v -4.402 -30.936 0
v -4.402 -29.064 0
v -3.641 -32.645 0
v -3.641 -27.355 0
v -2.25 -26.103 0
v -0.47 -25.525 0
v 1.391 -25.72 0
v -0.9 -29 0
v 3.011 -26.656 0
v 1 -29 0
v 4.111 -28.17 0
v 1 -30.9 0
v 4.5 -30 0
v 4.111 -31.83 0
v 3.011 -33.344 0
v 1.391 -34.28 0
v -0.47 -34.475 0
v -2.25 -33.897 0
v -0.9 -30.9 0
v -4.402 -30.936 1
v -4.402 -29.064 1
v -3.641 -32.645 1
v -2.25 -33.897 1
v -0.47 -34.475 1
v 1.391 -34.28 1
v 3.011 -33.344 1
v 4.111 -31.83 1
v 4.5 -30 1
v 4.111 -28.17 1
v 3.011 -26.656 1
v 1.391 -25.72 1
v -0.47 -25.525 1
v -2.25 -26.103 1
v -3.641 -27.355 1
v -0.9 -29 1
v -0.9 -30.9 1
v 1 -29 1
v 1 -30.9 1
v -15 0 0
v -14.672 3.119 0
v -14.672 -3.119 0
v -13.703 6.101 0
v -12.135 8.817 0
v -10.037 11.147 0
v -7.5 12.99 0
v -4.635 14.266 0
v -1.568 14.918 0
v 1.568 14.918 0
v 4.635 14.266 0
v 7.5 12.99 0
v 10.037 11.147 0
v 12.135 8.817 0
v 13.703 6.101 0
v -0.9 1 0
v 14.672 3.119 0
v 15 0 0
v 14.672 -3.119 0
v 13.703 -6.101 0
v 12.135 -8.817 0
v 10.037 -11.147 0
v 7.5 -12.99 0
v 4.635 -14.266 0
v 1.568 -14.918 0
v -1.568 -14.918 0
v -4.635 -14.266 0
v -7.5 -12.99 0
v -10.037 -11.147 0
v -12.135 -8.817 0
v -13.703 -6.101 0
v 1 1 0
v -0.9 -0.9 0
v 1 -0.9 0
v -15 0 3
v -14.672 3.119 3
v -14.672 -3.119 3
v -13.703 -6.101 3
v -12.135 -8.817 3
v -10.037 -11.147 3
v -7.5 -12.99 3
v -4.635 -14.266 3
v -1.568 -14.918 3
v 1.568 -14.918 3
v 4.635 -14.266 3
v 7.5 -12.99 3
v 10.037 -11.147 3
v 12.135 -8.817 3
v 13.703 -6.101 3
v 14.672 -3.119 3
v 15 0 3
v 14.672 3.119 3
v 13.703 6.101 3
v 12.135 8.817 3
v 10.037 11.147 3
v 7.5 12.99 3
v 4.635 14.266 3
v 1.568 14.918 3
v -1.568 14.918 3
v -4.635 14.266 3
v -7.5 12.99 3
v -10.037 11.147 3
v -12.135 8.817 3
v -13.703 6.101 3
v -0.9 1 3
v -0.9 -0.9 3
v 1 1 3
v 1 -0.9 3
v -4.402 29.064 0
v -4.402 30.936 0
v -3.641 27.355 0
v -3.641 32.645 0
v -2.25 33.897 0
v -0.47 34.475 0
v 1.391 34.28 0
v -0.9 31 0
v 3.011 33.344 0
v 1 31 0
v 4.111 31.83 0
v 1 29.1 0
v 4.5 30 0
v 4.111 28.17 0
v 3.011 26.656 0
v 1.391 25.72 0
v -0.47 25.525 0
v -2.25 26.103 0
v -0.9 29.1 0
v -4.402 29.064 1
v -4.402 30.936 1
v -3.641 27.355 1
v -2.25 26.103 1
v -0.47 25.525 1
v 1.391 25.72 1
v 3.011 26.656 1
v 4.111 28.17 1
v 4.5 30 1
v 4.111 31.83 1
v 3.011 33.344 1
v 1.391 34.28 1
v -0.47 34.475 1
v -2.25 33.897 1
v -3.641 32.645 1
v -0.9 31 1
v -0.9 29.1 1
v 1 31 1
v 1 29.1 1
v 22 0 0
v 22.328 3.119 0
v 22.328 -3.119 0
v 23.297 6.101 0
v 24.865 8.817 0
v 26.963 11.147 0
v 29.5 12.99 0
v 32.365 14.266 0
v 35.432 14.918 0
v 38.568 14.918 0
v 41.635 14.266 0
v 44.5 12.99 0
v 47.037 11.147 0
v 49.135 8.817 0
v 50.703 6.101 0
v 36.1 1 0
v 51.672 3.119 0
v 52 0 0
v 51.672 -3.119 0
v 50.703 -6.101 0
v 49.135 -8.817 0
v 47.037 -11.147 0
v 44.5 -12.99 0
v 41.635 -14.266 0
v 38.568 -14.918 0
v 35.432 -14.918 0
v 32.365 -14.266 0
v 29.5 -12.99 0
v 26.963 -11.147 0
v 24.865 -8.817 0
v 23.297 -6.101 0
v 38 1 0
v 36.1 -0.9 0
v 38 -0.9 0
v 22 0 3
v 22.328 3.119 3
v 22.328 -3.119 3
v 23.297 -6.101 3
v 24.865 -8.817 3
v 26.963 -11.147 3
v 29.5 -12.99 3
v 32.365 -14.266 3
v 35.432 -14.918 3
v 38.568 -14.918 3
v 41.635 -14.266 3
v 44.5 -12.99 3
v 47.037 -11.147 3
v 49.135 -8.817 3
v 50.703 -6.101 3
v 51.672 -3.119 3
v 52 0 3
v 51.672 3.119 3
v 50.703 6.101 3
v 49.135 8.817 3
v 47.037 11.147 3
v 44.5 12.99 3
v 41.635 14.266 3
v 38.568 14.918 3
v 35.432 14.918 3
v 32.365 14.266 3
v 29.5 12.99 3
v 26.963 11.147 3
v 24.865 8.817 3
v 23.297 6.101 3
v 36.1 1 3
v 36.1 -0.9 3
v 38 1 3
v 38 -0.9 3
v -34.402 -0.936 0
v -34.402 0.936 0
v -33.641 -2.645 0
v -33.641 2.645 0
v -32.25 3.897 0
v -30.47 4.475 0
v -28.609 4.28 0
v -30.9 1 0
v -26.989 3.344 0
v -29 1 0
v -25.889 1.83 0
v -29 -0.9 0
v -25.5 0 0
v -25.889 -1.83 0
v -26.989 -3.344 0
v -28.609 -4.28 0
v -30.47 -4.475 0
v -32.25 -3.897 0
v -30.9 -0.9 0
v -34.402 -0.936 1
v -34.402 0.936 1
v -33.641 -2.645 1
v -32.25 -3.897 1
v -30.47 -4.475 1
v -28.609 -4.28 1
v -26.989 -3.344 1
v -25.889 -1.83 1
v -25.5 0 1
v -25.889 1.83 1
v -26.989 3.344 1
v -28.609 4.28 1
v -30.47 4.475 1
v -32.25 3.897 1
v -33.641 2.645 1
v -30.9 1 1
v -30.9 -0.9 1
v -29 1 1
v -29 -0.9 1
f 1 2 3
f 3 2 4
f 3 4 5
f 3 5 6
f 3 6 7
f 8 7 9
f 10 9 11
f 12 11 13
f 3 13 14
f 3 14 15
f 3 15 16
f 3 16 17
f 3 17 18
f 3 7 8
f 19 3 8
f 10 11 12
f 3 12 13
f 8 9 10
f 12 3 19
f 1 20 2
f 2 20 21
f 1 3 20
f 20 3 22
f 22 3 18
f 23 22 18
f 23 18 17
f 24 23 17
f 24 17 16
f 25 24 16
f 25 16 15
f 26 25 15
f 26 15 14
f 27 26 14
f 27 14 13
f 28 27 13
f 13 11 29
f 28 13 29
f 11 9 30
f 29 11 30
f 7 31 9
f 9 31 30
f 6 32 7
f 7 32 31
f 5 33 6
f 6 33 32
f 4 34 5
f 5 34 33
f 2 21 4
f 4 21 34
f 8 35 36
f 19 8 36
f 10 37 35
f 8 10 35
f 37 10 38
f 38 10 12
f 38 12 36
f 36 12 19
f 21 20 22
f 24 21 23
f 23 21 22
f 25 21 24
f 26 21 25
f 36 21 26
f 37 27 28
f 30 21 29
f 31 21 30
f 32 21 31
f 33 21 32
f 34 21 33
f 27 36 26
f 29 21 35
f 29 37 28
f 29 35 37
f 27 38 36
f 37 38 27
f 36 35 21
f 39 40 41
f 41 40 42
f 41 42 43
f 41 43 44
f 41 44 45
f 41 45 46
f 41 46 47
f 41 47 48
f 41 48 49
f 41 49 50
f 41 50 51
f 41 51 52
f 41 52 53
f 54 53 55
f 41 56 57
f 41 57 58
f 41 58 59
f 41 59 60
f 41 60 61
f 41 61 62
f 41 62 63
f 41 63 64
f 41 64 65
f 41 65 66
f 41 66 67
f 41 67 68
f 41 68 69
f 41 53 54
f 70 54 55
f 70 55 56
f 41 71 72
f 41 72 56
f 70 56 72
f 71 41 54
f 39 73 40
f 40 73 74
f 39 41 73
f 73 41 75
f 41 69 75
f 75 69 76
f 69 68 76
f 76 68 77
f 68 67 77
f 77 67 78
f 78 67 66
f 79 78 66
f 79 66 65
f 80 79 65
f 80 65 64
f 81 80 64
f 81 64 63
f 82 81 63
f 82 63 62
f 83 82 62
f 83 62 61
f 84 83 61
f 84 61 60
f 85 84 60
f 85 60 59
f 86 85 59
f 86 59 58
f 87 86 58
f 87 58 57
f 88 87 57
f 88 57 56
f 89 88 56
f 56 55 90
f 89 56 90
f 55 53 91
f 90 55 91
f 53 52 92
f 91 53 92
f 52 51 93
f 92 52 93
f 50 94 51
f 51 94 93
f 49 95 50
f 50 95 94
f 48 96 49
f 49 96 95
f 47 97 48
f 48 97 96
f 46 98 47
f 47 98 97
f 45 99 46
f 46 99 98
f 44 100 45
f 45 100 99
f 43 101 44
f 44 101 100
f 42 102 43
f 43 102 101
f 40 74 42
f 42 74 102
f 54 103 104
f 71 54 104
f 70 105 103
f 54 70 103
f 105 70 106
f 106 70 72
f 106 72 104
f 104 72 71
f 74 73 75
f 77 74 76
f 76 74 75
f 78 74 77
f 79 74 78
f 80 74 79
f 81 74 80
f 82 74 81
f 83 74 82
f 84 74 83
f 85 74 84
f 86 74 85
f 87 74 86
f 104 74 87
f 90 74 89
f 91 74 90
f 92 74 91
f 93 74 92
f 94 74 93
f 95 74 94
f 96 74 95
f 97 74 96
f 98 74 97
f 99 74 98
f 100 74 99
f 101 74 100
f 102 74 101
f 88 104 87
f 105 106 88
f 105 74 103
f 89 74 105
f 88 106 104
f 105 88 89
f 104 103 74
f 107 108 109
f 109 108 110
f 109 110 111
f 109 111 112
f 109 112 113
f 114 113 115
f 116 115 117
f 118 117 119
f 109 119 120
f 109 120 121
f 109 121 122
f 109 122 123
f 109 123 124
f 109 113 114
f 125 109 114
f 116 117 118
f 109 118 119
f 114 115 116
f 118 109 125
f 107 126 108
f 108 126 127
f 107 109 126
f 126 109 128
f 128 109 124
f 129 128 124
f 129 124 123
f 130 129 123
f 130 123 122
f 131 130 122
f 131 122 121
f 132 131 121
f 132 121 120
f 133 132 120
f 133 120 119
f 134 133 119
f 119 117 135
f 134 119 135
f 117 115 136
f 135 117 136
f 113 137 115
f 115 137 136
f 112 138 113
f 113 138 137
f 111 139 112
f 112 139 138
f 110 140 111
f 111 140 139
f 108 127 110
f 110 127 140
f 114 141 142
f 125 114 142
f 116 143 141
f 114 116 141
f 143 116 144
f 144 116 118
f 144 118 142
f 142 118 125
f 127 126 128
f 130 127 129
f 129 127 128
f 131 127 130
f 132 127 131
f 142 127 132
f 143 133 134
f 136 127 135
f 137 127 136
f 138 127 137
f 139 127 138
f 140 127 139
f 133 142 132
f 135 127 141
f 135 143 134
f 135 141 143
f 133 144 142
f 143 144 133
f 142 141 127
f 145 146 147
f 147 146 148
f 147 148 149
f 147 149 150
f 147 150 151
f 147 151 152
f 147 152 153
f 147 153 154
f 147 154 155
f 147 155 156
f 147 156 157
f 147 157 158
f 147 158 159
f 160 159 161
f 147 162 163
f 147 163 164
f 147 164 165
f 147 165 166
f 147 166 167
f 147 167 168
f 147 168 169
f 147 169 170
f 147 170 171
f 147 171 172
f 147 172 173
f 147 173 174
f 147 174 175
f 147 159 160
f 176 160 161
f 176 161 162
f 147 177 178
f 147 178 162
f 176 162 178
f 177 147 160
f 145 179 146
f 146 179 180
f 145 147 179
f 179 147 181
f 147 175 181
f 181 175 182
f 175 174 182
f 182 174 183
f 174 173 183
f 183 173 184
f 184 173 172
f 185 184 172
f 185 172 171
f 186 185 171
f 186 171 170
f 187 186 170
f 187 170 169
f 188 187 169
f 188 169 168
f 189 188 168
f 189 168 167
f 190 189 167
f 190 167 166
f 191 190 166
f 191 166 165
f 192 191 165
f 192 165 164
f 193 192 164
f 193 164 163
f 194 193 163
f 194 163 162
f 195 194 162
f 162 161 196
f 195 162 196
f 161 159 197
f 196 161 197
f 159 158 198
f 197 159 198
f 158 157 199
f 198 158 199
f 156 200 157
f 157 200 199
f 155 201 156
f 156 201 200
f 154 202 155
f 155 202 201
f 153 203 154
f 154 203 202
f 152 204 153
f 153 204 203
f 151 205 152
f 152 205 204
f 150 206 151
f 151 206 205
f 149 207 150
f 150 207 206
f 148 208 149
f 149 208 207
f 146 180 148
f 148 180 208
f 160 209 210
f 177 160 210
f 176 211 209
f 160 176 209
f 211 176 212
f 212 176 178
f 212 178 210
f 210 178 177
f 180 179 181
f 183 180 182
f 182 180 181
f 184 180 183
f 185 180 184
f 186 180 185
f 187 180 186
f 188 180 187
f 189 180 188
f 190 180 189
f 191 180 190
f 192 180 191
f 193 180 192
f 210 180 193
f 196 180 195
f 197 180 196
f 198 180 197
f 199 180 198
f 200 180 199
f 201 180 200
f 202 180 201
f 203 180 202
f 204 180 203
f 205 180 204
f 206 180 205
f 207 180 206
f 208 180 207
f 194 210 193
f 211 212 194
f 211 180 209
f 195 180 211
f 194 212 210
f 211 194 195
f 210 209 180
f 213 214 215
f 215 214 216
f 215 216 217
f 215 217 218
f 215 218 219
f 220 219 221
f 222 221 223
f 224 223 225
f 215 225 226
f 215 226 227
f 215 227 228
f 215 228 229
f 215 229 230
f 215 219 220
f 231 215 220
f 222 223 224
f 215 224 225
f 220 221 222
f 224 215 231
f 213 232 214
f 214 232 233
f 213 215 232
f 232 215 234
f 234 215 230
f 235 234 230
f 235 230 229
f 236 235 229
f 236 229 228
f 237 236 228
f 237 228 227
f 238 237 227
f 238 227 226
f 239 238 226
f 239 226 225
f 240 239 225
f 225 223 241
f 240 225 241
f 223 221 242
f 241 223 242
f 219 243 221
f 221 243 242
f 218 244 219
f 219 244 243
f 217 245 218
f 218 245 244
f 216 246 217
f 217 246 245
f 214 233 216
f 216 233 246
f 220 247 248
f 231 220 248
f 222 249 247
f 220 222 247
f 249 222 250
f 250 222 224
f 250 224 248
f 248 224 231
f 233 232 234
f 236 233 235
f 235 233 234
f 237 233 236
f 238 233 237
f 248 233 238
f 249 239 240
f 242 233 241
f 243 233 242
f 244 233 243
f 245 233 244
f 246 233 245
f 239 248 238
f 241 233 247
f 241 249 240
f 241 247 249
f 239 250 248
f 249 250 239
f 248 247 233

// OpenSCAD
translate([0,-30,0])
union(){
difference(){
cylinder(1,4.5,4.5);
 translate([-0.9,-0.9,-1])cube([1.9,1.9,5]);
}
}

union(){
difference(){
 cylinder(3,15,15);
 translate([-0.9,-0.9,-1])cube([1.9,1.9,5]);
}
}

translate([0,30,0])
union(){
difference(){
cylinder(1,4.5,4.5);
 translate([-0.9,-0.9,-1])cube([1.9,1.9,5]);
}
}

translate([37,0,0])
union(){
difference(){
 cylinder(3,15,15);
 translate([-0.9,-0.9,-1])cube([1.9,1.9,5]);
}
}

translate([-30,0,0])
union(){
difference(){
cylinder(1,4.5,4.5);
 translate([-0.9,-0.9,-1])cube([1.9,1.9,5]);
}
}
